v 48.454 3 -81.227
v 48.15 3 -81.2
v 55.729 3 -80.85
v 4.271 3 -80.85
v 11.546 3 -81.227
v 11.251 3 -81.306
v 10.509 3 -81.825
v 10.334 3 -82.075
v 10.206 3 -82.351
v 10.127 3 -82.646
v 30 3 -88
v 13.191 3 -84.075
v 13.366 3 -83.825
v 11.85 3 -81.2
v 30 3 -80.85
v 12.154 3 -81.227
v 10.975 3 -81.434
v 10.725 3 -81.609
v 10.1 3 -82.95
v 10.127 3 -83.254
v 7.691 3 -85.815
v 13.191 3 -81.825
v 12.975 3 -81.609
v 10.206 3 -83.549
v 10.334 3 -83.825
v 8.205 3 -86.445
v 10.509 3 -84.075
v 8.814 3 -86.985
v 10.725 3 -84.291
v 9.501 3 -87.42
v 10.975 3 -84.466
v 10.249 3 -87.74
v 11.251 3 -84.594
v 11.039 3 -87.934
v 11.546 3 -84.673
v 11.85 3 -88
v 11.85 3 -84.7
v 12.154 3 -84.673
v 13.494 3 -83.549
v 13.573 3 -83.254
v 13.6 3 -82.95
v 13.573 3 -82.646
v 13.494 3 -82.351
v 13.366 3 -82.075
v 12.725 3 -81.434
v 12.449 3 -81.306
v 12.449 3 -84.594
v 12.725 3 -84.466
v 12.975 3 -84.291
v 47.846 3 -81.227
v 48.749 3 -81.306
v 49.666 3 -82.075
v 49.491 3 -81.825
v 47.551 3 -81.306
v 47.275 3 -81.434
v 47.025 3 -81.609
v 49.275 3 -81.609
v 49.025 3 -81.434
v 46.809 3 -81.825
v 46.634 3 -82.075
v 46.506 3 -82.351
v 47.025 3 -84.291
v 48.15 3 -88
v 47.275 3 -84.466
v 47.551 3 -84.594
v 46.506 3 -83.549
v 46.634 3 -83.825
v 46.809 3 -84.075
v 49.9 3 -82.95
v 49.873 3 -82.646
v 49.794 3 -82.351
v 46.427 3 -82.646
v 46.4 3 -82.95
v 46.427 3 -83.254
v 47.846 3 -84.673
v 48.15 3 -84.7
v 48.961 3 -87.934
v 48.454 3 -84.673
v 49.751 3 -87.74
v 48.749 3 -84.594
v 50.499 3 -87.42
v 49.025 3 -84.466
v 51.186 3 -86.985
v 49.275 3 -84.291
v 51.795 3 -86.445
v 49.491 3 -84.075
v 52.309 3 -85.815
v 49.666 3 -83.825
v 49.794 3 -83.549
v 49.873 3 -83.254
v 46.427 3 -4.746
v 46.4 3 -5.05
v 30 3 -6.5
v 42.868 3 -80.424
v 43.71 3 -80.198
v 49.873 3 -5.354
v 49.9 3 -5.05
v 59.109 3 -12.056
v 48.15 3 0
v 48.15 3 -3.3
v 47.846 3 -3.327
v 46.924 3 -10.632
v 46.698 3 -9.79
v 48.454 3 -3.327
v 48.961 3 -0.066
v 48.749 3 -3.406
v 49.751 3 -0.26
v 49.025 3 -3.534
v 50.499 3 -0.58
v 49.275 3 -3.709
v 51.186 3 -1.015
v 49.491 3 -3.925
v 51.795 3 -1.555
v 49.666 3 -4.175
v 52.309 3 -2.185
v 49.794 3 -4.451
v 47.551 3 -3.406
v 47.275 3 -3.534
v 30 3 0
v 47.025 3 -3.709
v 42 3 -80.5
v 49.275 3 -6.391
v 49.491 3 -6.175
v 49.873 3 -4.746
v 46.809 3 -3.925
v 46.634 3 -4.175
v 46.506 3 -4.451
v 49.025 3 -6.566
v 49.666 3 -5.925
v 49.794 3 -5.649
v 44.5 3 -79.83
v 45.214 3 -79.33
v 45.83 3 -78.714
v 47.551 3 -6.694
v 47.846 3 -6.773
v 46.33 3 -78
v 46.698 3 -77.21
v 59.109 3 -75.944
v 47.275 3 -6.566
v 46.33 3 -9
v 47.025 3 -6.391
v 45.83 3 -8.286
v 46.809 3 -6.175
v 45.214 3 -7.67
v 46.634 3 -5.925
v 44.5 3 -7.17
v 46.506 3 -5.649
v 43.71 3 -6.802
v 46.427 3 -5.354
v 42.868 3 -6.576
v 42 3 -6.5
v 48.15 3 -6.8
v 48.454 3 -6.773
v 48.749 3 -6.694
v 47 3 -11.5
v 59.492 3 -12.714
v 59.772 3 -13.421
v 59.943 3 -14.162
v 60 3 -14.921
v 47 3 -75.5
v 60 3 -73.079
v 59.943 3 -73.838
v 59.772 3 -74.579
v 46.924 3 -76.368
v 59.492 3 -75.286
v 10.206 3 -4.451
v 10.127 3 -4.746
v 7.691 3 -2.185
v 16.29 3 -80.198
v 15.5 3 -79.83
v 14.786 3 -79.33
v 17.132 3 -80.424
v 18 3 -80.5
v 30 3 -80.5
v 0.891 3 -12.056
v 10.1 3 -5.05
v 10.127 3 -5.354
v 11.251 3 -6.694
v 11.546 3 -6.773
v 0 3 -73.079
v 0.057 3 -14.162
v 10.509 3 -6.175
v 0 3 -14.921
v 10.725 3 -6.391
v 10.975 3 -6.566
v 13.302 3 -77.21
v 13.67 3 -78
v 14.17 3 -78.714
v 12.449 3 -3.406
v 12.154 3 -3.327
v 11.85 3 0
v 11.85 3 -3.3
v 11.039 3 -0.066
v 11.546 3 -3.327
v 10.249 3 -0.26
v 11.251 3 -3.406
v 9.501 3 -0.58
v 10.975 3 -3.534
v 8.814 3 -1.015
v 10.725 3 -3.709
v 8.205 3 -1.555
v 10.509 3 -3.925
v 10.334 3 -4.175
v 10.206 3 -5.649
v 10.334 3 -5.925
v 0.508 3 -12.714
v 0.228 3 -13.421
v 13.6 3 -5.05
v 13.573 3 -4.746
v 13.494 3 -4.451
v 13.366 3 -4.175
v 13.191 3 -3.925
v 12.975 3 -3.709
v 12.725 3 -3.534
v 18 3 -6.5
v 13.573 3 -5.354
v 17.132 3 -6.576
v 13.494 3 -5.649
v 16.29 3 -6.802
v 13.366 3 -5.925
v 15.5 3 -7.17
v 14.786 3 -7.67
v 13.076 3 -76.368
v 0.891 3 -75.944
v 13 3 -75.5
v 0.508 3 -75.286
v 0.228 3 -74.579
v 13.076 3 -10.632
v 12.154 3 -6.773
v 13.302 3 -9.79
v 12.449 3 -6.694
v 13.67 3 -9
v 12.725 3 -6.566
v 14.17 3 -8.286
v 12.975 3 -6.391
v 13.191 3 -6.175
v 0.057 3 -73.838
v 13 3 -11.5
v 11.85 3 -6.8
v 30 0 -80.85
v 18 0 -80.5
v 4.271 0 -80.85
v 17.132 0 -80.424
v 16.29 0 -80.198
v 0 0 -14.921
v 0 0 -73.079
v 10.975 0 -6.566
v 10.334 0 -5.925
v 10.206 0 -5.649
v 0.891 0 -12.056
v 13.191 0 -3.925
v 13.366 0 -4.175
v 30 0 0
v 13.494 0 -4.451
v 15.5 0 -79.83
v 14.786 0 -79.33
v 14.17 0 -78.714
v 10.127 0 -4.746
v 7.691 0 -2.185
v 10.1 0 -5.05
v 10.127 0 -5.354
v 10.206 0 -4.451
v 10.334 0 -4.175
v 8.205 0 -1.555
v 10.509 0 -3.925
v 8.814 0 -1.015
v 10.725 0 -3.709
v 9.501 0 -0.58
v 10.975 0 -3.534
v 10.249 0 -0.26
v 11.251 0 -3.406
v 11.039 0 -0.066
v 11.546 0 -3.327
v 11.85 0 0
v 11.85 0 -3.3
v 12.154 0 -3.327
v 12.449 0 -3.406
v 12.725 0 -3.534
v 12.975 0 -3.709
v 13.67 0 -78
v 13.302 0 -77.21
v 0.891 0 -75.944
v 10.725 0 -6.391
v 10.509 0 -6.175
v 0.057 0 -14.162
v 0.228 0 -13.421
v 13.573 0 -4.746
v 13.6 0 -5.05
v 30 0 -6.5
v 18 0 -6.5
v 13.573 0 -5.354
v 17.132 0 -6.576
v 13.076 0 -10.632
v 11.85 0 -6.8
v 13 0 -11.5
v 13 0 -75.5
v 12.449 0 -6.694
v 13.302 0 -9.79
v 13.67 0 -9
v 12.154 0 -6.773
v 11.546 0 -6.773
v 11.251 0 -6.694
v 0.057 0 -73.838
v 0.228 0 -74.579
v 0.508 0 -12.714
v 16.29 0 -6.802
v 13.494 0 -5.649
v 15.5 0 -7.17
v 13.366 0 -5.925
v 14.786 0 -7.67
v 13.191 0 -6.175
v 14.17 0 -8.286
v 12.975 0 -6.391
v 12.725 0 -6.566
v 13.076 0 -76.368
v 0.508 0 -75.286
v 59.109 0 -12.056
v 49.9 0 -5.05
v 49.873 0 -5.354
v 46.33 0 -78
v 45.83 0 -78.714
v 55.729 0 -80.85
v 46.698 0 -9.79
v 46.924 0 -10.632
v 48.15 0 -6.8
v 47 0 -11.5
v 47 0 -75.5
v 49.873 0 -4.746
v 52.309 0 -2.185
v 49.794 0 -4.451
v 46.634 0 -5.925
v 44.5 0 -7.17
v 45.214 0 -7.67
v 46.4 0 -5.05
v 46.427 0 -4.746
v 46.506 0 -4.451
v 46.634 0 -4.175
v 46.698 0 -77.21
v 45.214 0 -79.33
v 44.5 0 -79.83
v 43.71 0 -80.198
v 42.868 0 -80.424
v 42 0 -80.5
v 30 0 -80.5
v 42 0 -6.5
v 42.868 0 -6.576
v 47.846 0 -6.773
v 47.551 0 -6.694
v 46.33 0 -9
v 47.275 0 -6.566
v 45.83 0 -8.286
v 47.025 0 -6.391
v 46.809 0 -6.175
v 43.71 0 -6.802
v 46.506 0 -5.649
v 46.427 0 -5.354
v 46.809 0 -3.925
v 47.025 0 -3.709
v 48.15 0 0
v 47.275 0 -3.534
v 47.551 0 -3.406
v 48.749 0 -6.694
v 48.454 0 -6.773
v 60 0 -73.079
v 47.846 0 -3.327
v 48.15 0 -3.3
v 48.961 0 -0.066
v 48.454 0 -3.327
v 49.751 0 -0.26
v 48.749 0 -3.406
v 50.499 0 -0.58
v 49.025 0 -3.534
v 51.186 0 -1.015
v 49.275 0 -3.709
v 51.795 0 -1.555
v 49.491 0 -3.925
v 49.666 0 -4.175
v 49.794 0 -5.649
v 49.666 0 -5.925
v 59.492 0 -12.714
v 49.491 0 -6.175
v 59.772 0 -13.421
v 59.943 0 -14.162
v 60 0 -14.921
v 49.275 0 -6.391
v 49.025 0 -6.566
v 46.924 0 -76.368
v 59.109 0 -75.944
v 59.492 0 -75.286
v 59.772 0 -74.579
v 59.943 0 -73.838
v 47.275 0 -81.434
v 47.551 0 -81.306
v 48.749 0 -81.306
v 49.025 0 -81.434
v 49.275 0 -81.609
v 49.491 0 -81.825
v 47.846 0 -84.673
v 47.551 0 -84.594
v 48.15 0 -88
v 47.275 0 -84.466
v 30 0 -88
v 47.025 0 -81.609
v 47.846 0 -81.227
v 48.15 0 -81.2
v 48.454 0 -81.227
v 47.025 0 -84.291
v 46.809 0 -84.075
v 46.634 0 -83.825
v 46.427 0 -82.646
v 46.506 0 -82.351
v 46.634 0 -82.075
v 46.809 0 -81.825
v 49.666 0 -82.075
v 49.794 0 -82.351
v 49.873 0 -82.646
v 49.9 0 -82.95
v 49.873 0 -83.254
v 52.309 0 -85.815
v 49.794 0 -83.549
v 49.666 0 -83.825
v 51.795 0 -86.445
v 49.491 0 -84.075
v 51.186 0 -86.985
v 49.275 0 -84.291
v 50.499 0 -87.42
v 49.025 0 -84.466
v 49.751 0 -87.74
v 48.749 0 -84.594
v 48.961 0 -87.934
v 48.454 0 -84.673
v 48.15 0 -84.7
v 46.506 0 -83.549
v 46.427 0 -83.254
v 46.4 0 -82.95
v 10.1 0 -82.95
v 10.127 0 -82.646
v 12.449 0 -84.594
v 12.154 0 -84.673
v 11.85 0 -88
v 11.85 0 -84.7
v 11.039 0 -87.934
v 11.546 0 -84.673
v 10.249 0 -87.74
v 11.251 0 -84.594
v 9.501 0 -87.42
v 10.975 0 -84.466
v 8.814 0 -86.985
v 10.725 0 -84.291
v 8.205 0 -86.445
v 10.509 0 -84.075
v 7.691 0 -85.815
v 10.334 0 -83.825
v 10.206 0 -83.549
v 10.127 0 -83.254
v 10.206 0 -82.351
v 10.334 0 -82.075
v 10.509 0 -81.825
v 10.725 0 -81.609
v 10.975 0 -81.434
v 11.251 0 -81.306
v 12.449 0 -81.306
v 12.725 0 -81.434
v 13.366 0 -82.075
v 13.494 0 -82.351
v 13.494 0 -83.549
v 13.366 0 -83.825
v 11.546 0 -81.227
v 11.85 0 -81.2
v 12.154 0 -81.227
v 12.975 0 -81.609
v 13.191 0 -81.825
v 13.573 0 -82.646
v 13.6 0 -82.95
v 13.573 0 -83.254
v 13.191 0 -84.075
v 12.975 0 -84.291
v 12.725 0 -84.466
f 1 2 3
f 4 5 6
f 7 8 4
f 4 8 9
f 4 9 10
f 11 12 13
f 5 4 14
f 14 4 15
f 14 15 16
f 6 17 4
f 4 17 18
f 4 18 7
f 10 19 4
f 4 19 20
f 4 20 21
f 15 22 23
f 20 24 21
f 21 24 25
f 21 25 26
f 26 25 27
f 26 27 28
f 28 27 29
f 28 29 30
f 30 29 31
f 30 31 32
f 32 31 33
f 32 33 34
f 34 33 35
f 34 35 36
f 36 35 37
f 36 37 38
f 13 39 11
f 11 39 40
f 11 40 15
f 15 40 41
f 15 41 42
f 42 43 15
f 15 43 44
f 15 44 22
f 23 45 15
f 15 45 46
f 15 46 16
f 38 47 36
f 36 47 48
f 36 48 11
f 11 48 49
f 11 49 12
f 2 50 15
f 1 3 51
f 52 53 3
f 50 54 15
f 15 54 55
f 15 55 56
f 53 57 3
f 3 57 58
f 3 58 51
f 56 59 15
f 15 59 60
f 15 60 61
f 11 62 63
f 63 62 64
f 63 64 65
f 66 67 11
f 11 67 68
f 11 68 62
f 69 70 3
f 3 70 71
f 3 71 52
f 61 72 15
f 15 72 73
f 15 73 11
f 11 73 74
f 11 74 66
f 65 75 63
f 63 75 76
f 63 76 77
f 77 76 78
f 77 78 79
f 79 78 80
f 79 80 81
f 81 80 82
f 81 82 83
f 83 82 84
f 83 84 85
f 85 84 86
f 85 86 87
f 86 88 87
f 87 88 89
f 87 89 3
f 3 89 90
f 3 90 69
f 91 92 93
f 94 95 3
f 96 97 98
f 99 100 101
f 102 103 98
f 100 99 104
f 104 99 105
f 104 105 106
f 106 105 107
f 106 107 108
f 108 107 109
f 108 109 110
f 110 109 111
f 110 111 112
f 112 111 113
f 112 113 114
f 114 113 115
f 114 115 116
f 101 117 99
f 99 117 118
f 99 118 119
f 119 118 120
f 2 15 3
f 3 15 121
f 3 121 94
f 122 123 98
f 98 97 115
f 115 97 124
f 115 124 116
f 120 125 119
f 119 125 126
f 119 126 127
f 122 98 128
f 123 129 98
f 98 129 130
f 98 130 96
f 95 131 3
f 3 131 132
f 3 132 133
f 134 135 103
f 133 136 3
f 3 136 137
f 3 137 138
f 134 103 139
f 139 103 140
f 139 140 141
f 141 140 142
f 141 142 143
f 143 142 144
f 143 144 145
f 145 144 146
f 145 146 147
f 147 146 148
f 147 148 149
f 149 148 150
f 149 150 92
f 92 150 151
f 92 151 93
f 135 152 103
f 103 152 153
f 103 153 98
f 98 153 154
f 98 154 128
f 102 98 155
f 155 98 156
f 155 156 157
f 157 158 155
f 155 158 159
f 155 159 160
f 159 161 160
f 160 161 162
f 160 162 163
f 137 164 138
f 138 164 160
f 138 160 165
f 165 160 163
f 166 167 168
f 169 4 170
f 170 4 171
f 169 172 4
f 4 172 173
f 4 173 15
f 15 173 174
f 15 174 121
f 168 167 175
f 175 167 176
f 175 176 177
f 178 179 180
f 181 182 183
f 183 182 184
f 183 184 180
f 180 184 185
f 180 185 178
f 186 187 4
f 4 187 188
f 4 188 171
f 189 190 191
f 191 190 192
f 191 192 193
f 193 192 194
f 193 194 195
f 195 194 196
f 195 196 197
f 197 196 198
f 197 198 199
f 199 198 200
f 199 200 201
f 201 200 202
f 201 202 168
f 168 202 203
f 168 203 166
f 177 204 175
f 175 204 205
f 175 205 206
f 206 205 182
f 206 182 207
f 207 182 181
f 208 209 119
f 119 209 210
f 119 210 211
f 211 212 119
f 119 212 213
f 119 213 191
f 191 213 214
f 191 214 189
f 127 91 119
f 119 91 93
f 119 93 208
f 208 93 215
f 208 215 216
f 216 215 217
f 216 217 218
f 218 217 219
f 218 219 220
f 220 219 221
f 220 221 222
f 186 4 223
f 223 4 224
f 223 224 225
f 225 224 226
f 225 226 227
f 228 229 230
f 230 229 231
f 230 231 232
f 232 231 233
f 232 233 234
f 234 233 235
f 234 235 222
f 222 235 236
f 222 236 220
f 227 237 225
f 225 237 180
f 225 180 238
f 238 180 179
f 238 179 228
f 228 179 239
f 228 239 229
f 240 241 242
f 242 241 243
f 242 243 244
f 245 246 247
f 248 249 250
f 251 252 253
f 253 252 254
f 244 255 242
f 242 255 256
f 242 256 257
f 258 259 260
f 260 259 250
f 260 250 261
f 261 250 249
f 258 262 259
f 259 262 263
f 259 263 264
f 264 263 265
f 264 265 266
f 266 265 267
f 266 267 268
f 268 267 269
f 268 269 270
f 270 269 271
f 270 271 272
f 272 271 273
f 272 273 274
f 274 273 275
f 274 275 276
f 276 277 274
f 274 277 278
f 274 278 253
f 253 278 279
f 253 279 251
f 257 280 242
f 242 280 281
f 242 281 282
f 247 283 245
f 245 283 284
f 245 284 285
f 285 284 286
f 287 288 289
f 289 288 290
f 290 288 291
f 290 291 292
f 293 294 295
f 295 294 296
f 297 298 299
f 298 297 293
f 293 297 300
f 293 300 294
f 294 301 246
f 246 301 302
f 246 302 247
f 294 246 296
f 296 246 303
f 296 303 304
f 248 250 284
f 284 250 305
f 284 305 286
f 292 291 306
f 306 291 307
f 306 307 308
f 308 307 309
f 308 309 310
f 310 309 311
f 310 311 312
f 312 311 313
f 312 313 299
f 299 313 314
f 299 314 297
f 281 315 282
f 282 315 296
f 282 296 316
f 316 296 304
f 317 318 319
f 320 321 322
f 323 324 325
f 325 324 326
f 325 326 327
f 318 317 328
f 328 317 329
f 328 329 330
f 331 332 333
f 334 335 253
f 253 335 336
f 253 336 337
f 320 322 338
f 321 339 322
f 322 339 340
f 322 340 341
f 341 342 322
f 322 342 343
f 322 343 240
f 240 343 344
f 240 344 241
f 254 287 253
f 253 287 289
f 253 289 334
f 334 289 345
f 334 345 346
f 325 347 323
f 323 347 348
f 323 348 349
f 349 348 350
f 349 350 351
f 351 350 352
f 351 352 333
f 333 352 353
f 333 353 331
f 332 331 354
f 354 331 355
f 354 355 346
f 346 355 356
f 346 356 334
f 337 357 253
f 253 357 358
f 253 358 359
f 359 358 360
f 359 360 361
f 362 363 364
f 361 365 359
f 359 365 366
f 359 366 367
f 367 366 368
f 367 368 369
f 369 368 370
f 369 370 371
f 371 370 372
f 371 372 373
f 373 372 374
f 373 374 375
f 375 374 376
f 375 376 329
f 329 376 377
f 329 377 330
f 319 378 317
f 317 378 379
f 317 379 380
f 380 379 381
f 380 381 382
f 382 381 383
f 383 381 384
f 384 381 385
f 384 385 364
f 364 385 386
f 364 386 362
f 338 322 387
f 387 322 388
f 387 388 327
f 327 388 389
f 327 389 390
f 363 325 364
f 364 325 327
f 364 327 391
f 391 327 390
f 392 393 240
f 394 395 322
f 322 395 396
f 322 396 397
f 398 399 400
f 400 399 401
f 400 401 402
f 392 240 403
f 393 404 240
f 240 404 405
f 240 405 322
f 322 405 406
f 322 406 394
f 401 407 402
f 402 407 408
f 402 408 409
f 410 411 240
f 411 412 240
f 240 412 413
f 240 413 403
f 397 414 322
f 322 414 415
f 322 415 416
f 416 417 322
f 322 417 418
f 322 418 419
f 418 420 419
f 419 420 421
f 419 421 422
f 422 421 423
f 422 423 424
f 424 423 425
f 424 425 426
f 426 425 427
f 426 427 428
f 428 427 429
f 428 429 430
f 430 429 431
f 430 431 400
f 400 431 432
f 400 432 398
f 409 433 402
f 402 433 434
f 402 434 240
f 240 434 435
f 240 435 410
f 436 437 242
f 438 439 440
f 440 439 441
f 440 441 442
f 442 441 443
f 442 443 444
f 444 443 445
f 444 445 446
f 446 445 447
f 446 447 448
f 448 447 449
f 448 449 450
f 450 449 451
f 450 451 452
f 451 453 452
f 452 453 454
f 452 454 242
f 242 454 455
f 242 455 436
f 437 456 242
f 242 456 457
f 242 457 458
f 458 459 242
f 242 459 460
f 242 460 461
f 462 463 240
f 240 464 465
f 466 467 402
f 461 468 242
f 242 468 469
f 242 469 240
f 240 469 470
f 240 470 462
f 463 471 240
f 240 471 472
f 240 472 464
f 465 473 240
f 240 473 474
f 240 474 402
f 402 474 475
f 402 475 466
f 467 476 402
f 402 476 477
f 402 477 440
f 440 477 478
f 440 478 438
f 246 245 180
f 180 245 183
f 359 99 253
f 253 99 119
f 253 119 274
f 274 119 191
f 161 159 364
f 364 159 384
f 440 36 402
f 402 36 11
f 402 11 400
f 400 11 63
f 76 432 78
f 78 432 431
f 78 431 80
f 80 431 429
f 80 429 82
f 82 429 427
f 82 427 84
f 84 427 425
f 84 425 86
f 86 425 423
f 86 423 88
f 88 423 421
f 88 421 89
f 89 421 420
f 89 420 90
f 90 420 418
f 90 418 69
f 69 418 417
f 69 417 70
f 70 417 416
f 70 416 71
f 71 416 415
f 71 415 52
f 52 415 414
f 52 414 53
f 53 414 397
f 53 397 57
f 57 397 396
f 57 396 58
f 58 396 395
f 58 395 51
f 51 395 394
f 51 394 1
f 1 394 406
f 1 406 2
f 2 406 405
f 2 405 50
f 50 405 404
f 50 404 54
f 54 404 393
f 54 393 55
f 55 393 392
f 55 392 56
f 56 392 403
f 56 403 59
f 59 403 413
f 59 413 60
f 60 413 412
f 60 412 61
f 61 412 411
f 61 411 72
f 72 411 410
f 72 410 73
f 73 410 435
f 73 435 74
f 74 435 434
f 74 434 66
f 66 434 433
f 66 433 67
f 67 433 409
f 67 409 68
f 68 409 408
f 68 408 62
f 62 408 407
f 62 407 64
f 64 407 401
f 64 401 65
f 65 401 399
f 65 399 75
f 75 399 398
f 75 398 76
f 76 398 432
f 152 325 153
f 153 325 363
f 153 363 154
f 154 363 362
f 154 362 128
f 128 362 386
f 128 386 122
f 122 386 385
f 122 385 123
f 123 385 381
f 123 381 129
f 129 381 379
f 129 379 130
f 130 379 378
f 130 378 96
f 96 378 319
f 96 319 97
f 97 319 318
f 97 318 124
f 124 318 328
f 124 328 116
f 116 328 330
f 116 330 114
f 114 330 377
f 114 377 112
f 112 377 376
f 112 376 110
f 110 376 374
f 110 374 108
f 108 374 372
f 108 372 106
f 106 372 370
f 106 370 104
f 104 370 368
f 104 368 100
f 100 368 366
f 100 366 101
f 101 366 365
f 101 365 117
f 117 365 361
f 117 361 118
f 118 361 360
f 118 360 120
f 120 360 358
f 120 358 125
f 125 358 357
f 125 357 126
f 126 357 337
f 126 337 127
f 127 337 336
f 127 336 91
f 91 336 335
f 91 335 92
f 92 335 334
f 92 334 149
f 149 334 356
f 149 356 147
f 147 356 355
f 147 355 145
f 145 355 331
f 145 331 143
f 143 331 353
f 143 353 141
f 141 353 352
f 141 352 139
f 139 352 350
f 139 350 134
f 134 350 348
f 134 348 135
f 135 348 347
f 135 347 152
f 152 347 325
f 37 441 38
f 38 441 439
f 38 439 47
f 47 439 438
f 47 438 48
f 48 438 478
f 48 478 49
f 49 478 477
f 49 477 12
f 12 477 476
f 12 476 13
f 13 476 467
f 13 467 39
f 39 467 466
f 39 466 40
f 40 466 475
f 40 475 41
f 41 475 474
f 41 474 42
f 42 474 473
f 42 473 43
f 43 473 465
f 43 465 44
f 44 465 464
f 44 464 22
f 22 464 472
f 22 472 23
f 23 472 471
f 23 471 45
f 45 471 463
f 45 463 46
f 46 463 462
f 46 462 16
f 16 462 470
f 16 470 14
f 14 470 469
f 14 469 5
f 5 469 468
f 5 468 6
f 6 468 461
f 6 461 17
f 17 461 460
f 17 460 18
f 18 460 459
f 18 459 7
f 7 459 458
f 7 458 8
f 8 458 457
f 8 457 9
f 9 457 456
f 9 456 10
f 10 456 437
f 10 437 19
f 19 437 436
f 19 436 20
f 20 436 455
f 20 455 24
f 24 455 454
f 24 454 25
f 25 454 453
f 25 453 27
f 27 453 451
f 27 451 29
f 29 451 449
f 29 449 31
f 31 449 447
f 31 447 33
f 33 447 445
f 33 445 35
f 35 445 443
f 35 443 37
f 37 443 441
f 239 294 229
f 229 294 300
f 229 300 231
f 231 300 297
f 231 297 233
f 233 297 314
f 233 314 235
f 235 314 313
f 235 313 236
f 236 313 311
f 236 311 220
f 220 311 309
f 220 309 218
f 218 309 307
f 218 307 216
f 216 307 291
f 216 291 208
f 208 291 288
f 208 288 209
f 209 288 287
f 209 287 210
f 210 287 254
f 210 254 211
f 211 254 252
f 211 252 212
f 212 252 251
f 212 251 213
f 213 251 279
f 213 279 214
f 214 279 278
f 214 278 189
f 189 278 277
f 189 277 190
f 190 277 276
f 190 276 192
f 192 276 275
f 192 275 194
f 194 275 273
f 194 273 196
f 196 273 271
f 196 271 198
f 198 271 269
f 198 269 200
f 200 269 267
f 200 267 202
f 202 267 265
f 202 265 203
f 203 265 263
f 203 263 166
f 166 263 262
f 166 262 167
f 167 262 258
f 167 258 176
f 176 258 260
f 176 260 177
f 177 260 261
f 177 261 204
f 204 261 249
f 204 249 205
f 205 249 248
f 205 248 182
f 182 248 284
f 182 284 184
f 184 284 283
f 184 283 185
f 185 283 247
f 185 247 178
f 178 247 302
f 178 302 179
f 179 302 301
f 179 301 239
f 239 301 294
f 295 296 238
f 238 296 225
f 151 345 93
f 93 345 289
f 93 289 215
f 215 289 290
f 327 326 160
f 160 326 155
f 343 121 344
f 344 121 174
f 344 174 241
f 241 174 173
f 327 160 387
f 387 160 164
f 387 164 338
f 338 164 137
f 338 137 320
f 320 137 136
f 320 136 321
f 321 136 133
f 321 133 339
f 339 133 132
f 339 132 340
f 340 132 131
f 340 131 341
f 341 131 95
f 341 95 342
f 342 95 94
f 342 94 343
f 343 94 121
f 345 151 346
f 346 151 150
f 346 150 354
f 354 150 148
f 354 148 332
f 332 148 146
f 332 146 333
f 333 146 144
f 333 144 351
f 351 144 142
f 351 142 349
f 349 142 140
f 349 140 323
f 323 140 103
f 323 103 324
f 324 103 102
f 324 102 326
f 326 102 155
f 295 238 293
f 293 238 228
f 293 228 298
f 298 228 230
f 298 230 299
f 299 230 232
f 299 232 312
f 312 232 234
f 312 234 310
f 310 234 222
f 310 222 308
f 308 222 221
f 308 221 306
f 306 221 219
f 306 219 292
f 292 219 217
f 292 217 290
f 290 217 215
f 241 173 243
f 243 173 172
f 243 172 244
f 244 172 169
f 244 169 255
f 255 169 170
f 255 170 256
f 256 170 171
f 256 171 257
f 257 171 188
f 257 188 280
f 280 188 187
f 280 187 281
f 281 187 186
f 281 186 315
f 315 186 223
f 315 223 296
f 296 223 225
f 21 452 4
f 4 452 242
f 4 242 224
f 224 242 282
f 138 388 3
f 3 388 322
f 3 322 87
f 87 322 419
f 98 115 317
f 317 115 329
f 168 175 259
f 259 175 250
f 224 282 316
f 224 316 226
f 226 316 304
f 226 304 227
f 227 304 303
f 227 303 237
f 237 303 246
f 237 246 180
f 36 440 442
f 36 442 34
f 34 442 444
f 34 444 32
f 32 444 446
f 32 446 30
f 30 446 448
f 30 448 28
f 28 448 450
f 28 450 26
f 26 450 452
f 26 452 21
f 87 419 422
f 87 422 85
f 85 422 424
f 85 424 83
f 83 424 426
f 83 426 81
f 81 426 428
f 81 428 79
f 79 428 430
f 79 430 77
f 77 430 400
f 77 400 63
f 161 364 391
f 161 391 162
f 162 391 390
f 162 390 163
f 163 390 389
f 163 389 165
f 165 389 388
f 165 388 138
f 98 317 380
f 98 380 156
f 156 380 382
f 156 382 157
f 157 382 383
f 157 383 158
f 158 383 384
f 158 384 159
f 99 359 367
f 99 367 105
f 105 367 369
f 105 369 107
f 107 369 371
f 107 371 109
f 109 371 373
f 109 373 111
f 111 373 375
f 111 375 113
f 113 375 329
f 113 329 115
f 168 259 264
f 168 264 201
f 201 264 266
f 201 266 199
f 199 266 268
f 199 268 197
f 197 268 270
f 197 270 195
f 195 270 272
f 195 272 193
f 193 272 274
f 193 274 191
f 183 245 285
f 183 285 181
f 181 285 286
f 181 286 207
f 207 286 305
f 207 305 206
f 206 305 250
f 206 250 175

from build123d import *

# Parameters (mm, degrees)
SKETCH1_W           = 60
SKETCH1_H           = 88
SKETCH1_R           = 1.75
SKETCH1_W_2         = 34
SKETCH1_H_2         = 74
BOSS_EXTRUDE1_DEPTH = 3
FILLET1_R           = 5
SKETCH6_W           = 62
SKETCH6_H           = 90
CUT_EXTRUDE3_DEPTH  = 4
FILLET3_R           = 5.05


with BuildPart() as part:
    # Sketch1 → Boss-Extrude1 (new body)
    with BuildSketch(Plane(origin=(0, 0, 0), x_dir=(1, 0, 0), z_dir=(0, 1, 0))):
        with Locations((30, 44)):
            Rectangle(SKETCH1_W, SKETCH1_H)
        with Locations((11.85, 82.95)):
            Circle(SKETCH1_R, mode=Mode.SUBTRACT)
        with Locations((48.15, 82.95)):
            Circle(SKETCH1_R, mode=Mode.SUBTRACT)
        with Locations((48.15, 5.05)):
            Circle(SKETCH1_R, mode=Mode.SUBTRACT)
        with Locations((11.85, 5.05)):
            Circle(SKETCH1_R, mode=Mode.SUBTRACT)
        with Locations((30, 43.5)):
            Rectangle(SKETCH1_W_2, SKETCH1_H_2, mode=Mode.SUBTRACT)
    extrude(amount=BOSS_EXTRUDE1_DEPTH)

    # Fillet1
    fillet1_edges = [part.edges().sort_by_distance(p)[0] for p in [
        (13, 1.5, -80.5),
        (13, 1.5, -6.5),
        (47, 1.5, -6.5),
        (47, 1.5, -80.5),
    ]]
    fillet(fillet1_edges, radius=FILLET1_R)

    # Sketch6 → Cut-Extrude3 (cut, through all)
    with BuildSketch(Plane(origin=(0, 3, 0), x_dir=(1, 0, 0), z_dir=(0, 1, 0))):
        with Locations((30, 44)):
            Rectangle(SKETCH6_W, SKETCH6_H)
        Polygon((9.196567368, 88), (0, 74.65), (0, 13.35), (9.196567368, 0), (50.803432632, 0), (60, 13.35), (60, 74.65), (50.803432632, 88), align=None, mode=Mode.SUBTRACT)
    extrude(amount=-CUT_EXTRUDE3_DEPTH, mode=Mode.SUBTRACT)

    # Fillet3
    fillet3_edges = [part.edges().sort_by_distance(p)[0] for p in [
        (0, 1.5, -74.65),
        (9.196567368, 1.5, -88),
        (50.803432632, 1.5, -88),
        (60, 1.5, -74.65),
        (60, 1.5, -13.35),
        (50.803432632, 1.5, 0),
        (9.196567368, 1.5, 0),
        (0, 1.5, -13.35),
    ]]
    fillet(fillet3_edges, radius=FILLET3_R)


solid = part.part
